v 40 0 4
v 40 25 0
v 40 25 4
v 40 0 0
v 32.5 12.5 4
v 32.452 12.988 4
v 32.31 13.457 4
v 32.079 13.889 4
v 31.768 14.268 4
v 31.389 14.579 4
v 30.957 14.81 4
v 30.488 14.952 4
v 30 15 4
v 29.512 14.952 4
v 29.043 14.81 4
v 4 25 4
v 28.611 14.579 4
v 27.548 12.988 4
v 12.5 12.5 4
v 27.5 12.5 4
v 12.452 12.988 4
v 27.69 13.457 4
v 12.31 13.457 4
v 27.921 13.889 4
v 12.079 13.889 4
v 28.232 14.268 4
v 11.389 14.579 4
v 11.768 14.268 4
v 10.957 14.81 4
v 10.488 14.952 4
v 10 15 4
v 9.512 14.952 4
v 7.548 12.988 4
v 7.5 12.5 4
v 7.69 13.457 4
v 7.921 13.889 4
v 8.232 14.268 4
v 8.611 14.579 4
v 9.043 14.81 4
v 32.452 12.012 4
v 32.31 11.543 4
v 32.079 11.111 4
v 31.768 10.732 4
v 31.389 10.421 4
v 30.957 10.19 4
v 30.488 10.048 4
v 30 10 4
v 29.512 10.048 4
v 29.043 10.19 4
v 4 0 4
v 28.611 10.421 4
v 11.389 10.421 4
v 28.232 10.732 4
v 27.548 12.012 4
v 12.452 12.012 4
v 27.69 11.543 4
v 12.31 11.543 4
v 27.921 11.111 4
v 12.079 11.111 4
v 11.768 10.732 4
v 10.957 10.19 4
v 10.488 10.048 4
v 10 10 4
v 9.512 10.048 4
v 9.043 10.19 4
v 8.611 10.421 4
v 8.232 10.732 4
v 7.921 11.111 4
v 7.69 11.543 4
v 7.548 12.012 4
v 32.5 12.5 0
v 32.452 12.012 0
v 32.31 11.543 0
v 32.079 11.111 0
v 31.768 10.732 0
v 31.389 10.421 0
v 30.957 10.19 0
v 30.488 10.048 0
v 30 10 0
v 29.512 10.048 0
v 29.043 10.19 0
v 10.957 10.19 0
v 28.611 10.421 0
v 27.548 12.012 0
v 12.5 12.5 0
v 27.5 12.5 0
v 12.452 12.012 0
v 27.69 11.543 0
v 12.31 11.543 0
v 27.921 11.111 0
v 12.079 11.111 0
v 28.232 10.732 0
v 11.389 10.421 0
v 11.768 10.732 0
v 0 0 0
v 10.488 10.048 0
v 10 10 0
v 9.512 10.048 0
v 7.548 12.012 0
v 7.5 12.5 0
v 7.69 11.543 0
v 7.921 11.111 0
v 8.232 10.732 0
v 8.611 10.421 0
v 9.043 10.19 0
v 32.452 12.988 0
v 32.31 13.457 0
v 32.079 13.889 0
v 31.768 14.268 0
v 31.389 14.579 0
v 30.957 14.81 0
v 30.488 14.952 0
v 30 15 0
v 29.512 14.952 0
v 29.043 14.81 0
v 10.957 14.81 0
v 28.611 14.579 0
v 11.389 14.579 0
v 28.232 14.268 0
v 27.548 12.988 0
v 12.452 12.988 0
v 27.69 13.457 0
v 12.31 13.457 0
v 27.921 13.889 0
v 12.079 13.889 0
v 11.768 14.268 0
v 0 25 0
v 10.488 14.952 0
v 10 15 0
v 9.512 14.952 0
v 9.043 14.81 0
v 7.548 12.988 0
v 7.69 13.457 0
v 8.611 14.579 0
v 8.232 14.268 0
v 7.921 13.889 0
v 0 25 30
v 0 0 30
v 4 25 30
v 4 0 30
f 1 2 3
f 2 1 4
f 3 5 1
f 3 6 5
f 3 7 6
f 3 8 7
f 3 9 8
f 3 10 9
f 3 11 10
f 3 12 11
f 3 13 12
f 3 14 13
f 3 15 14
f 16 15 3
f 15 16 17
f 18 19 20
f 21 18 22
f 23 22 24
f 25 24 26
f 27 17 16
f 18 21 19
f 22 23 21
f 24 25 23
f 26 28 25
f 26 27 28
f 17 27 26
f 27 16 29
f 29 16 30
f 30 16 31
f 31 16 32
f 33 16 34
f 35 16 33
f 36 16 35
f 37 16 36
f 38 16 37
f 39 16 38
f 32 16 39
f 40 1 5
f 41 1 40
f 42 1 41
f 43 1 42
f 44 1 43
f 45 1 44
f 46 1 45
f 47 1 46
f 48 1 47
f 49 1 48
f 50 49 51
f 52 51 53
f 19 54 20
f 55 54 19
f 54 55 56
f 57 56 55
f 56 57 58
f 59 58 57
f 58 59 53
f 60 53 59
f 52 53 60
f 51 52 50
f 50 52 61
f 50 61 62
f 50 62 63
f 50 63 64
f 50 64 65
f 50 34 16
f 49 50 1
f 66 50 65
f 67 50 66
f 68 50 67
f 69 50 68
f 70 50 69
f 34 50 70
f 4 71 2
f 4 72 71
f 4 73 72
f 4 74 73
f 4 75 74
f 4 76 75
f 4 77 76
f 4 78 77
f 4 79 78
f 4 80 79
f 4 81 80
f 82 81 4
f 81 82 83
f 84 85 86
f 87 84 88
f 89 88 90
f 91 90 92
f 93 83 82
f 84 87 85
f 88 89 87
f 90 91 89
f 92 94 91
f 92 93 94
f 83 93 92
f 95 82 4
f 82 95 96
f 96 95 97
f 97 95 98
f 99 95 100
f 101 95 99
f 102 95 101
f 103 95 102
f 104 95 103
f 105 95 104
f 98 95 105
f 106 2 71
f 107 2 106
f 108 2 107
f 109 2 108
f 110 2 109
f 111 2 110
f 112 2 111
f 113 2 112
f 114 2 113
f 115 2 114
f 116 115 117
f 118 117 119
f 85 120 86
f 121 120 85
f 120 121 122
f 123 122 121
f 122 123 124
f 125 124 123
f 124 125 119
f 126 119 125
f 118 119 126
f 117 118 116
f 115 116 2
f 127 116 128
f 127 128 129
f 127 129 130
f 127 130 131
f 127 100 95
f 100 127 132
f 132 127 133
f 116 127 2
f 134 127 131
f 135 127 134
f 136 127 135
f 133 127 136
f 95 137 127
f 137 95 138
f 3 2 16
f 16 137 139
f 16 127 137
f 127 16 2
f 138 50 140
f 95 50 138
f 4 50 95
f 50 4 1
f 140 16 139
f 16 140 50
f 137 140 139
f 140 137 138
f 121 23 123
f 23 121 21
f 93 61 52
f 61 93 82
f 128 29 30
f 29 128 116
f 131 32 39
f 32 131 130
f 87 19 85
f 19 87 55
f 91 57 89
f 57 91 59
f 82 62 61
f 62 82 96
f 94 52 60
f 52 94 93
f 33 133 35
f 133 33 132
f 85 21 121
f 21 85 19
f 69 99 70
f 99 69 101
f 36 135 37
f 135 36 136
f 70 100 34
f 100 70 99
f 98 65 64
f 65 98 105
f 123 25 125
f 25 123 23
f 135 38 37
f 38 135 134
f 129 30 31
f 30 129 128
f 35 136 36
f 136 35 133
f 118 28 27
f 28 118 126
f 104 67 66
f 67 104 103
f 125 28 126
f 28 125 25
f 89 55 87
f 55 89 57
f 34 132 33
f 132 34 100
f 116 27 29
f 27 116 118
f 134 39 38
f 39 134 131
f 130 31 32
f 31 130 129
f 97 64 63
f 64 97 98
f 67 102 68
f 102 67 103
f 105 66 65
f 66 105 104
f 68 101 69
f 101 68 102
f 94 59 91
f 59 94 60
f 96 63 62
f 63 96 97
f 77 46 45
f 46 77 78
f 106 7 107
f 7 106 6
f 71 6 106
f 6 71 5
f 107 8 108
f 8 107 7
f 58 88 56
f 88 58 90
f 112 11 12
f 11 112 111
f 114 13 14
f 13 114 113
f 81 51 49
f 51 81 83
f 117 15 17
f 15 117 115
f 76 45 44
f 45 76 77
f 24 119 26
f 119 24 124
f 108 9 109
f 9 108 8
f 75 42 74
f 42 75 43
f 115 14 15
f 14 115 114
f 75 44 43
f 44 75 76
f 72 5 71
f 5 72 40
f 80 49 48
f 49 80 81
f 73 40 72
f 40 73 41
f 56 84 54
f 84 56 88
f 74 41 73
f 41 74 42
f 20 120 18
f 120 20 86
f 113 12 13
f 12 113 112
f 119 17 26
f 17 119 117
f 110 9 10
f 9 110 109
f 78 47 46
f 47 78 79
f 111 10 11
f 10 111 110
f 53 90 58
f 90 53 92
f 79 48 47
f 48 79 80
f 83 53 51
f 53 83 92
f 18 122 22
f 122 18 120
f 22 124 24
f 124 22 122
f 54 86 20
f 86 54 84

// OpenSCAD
// BeamBench toolchain spike bracket.
// Units: millimetres. Single part, simple functional bracket.
bracket_width = 40;
bracket_depth = 25;
bracket_height = 30;
wall = 4;
hole_d = 5;
hole_spacing = 20;

module bracket() {
  difference() {
    union() {
      cube([bracket_width, bracket_depth, wall]);
      translate([0, 0, 0]) cube([wall, bracket_depth, bracket_height]);
    }
    // mounting holes in base
    for (x = [(bracket_width-hole_spacing)/2, (bracket_width+hole_spacing)/2]) {
      translate([x, bracket_depth/2, -1])
        cylinder(h=wall+2, d=hole_d, $fn=32);
    }
  }
}

bracket();
